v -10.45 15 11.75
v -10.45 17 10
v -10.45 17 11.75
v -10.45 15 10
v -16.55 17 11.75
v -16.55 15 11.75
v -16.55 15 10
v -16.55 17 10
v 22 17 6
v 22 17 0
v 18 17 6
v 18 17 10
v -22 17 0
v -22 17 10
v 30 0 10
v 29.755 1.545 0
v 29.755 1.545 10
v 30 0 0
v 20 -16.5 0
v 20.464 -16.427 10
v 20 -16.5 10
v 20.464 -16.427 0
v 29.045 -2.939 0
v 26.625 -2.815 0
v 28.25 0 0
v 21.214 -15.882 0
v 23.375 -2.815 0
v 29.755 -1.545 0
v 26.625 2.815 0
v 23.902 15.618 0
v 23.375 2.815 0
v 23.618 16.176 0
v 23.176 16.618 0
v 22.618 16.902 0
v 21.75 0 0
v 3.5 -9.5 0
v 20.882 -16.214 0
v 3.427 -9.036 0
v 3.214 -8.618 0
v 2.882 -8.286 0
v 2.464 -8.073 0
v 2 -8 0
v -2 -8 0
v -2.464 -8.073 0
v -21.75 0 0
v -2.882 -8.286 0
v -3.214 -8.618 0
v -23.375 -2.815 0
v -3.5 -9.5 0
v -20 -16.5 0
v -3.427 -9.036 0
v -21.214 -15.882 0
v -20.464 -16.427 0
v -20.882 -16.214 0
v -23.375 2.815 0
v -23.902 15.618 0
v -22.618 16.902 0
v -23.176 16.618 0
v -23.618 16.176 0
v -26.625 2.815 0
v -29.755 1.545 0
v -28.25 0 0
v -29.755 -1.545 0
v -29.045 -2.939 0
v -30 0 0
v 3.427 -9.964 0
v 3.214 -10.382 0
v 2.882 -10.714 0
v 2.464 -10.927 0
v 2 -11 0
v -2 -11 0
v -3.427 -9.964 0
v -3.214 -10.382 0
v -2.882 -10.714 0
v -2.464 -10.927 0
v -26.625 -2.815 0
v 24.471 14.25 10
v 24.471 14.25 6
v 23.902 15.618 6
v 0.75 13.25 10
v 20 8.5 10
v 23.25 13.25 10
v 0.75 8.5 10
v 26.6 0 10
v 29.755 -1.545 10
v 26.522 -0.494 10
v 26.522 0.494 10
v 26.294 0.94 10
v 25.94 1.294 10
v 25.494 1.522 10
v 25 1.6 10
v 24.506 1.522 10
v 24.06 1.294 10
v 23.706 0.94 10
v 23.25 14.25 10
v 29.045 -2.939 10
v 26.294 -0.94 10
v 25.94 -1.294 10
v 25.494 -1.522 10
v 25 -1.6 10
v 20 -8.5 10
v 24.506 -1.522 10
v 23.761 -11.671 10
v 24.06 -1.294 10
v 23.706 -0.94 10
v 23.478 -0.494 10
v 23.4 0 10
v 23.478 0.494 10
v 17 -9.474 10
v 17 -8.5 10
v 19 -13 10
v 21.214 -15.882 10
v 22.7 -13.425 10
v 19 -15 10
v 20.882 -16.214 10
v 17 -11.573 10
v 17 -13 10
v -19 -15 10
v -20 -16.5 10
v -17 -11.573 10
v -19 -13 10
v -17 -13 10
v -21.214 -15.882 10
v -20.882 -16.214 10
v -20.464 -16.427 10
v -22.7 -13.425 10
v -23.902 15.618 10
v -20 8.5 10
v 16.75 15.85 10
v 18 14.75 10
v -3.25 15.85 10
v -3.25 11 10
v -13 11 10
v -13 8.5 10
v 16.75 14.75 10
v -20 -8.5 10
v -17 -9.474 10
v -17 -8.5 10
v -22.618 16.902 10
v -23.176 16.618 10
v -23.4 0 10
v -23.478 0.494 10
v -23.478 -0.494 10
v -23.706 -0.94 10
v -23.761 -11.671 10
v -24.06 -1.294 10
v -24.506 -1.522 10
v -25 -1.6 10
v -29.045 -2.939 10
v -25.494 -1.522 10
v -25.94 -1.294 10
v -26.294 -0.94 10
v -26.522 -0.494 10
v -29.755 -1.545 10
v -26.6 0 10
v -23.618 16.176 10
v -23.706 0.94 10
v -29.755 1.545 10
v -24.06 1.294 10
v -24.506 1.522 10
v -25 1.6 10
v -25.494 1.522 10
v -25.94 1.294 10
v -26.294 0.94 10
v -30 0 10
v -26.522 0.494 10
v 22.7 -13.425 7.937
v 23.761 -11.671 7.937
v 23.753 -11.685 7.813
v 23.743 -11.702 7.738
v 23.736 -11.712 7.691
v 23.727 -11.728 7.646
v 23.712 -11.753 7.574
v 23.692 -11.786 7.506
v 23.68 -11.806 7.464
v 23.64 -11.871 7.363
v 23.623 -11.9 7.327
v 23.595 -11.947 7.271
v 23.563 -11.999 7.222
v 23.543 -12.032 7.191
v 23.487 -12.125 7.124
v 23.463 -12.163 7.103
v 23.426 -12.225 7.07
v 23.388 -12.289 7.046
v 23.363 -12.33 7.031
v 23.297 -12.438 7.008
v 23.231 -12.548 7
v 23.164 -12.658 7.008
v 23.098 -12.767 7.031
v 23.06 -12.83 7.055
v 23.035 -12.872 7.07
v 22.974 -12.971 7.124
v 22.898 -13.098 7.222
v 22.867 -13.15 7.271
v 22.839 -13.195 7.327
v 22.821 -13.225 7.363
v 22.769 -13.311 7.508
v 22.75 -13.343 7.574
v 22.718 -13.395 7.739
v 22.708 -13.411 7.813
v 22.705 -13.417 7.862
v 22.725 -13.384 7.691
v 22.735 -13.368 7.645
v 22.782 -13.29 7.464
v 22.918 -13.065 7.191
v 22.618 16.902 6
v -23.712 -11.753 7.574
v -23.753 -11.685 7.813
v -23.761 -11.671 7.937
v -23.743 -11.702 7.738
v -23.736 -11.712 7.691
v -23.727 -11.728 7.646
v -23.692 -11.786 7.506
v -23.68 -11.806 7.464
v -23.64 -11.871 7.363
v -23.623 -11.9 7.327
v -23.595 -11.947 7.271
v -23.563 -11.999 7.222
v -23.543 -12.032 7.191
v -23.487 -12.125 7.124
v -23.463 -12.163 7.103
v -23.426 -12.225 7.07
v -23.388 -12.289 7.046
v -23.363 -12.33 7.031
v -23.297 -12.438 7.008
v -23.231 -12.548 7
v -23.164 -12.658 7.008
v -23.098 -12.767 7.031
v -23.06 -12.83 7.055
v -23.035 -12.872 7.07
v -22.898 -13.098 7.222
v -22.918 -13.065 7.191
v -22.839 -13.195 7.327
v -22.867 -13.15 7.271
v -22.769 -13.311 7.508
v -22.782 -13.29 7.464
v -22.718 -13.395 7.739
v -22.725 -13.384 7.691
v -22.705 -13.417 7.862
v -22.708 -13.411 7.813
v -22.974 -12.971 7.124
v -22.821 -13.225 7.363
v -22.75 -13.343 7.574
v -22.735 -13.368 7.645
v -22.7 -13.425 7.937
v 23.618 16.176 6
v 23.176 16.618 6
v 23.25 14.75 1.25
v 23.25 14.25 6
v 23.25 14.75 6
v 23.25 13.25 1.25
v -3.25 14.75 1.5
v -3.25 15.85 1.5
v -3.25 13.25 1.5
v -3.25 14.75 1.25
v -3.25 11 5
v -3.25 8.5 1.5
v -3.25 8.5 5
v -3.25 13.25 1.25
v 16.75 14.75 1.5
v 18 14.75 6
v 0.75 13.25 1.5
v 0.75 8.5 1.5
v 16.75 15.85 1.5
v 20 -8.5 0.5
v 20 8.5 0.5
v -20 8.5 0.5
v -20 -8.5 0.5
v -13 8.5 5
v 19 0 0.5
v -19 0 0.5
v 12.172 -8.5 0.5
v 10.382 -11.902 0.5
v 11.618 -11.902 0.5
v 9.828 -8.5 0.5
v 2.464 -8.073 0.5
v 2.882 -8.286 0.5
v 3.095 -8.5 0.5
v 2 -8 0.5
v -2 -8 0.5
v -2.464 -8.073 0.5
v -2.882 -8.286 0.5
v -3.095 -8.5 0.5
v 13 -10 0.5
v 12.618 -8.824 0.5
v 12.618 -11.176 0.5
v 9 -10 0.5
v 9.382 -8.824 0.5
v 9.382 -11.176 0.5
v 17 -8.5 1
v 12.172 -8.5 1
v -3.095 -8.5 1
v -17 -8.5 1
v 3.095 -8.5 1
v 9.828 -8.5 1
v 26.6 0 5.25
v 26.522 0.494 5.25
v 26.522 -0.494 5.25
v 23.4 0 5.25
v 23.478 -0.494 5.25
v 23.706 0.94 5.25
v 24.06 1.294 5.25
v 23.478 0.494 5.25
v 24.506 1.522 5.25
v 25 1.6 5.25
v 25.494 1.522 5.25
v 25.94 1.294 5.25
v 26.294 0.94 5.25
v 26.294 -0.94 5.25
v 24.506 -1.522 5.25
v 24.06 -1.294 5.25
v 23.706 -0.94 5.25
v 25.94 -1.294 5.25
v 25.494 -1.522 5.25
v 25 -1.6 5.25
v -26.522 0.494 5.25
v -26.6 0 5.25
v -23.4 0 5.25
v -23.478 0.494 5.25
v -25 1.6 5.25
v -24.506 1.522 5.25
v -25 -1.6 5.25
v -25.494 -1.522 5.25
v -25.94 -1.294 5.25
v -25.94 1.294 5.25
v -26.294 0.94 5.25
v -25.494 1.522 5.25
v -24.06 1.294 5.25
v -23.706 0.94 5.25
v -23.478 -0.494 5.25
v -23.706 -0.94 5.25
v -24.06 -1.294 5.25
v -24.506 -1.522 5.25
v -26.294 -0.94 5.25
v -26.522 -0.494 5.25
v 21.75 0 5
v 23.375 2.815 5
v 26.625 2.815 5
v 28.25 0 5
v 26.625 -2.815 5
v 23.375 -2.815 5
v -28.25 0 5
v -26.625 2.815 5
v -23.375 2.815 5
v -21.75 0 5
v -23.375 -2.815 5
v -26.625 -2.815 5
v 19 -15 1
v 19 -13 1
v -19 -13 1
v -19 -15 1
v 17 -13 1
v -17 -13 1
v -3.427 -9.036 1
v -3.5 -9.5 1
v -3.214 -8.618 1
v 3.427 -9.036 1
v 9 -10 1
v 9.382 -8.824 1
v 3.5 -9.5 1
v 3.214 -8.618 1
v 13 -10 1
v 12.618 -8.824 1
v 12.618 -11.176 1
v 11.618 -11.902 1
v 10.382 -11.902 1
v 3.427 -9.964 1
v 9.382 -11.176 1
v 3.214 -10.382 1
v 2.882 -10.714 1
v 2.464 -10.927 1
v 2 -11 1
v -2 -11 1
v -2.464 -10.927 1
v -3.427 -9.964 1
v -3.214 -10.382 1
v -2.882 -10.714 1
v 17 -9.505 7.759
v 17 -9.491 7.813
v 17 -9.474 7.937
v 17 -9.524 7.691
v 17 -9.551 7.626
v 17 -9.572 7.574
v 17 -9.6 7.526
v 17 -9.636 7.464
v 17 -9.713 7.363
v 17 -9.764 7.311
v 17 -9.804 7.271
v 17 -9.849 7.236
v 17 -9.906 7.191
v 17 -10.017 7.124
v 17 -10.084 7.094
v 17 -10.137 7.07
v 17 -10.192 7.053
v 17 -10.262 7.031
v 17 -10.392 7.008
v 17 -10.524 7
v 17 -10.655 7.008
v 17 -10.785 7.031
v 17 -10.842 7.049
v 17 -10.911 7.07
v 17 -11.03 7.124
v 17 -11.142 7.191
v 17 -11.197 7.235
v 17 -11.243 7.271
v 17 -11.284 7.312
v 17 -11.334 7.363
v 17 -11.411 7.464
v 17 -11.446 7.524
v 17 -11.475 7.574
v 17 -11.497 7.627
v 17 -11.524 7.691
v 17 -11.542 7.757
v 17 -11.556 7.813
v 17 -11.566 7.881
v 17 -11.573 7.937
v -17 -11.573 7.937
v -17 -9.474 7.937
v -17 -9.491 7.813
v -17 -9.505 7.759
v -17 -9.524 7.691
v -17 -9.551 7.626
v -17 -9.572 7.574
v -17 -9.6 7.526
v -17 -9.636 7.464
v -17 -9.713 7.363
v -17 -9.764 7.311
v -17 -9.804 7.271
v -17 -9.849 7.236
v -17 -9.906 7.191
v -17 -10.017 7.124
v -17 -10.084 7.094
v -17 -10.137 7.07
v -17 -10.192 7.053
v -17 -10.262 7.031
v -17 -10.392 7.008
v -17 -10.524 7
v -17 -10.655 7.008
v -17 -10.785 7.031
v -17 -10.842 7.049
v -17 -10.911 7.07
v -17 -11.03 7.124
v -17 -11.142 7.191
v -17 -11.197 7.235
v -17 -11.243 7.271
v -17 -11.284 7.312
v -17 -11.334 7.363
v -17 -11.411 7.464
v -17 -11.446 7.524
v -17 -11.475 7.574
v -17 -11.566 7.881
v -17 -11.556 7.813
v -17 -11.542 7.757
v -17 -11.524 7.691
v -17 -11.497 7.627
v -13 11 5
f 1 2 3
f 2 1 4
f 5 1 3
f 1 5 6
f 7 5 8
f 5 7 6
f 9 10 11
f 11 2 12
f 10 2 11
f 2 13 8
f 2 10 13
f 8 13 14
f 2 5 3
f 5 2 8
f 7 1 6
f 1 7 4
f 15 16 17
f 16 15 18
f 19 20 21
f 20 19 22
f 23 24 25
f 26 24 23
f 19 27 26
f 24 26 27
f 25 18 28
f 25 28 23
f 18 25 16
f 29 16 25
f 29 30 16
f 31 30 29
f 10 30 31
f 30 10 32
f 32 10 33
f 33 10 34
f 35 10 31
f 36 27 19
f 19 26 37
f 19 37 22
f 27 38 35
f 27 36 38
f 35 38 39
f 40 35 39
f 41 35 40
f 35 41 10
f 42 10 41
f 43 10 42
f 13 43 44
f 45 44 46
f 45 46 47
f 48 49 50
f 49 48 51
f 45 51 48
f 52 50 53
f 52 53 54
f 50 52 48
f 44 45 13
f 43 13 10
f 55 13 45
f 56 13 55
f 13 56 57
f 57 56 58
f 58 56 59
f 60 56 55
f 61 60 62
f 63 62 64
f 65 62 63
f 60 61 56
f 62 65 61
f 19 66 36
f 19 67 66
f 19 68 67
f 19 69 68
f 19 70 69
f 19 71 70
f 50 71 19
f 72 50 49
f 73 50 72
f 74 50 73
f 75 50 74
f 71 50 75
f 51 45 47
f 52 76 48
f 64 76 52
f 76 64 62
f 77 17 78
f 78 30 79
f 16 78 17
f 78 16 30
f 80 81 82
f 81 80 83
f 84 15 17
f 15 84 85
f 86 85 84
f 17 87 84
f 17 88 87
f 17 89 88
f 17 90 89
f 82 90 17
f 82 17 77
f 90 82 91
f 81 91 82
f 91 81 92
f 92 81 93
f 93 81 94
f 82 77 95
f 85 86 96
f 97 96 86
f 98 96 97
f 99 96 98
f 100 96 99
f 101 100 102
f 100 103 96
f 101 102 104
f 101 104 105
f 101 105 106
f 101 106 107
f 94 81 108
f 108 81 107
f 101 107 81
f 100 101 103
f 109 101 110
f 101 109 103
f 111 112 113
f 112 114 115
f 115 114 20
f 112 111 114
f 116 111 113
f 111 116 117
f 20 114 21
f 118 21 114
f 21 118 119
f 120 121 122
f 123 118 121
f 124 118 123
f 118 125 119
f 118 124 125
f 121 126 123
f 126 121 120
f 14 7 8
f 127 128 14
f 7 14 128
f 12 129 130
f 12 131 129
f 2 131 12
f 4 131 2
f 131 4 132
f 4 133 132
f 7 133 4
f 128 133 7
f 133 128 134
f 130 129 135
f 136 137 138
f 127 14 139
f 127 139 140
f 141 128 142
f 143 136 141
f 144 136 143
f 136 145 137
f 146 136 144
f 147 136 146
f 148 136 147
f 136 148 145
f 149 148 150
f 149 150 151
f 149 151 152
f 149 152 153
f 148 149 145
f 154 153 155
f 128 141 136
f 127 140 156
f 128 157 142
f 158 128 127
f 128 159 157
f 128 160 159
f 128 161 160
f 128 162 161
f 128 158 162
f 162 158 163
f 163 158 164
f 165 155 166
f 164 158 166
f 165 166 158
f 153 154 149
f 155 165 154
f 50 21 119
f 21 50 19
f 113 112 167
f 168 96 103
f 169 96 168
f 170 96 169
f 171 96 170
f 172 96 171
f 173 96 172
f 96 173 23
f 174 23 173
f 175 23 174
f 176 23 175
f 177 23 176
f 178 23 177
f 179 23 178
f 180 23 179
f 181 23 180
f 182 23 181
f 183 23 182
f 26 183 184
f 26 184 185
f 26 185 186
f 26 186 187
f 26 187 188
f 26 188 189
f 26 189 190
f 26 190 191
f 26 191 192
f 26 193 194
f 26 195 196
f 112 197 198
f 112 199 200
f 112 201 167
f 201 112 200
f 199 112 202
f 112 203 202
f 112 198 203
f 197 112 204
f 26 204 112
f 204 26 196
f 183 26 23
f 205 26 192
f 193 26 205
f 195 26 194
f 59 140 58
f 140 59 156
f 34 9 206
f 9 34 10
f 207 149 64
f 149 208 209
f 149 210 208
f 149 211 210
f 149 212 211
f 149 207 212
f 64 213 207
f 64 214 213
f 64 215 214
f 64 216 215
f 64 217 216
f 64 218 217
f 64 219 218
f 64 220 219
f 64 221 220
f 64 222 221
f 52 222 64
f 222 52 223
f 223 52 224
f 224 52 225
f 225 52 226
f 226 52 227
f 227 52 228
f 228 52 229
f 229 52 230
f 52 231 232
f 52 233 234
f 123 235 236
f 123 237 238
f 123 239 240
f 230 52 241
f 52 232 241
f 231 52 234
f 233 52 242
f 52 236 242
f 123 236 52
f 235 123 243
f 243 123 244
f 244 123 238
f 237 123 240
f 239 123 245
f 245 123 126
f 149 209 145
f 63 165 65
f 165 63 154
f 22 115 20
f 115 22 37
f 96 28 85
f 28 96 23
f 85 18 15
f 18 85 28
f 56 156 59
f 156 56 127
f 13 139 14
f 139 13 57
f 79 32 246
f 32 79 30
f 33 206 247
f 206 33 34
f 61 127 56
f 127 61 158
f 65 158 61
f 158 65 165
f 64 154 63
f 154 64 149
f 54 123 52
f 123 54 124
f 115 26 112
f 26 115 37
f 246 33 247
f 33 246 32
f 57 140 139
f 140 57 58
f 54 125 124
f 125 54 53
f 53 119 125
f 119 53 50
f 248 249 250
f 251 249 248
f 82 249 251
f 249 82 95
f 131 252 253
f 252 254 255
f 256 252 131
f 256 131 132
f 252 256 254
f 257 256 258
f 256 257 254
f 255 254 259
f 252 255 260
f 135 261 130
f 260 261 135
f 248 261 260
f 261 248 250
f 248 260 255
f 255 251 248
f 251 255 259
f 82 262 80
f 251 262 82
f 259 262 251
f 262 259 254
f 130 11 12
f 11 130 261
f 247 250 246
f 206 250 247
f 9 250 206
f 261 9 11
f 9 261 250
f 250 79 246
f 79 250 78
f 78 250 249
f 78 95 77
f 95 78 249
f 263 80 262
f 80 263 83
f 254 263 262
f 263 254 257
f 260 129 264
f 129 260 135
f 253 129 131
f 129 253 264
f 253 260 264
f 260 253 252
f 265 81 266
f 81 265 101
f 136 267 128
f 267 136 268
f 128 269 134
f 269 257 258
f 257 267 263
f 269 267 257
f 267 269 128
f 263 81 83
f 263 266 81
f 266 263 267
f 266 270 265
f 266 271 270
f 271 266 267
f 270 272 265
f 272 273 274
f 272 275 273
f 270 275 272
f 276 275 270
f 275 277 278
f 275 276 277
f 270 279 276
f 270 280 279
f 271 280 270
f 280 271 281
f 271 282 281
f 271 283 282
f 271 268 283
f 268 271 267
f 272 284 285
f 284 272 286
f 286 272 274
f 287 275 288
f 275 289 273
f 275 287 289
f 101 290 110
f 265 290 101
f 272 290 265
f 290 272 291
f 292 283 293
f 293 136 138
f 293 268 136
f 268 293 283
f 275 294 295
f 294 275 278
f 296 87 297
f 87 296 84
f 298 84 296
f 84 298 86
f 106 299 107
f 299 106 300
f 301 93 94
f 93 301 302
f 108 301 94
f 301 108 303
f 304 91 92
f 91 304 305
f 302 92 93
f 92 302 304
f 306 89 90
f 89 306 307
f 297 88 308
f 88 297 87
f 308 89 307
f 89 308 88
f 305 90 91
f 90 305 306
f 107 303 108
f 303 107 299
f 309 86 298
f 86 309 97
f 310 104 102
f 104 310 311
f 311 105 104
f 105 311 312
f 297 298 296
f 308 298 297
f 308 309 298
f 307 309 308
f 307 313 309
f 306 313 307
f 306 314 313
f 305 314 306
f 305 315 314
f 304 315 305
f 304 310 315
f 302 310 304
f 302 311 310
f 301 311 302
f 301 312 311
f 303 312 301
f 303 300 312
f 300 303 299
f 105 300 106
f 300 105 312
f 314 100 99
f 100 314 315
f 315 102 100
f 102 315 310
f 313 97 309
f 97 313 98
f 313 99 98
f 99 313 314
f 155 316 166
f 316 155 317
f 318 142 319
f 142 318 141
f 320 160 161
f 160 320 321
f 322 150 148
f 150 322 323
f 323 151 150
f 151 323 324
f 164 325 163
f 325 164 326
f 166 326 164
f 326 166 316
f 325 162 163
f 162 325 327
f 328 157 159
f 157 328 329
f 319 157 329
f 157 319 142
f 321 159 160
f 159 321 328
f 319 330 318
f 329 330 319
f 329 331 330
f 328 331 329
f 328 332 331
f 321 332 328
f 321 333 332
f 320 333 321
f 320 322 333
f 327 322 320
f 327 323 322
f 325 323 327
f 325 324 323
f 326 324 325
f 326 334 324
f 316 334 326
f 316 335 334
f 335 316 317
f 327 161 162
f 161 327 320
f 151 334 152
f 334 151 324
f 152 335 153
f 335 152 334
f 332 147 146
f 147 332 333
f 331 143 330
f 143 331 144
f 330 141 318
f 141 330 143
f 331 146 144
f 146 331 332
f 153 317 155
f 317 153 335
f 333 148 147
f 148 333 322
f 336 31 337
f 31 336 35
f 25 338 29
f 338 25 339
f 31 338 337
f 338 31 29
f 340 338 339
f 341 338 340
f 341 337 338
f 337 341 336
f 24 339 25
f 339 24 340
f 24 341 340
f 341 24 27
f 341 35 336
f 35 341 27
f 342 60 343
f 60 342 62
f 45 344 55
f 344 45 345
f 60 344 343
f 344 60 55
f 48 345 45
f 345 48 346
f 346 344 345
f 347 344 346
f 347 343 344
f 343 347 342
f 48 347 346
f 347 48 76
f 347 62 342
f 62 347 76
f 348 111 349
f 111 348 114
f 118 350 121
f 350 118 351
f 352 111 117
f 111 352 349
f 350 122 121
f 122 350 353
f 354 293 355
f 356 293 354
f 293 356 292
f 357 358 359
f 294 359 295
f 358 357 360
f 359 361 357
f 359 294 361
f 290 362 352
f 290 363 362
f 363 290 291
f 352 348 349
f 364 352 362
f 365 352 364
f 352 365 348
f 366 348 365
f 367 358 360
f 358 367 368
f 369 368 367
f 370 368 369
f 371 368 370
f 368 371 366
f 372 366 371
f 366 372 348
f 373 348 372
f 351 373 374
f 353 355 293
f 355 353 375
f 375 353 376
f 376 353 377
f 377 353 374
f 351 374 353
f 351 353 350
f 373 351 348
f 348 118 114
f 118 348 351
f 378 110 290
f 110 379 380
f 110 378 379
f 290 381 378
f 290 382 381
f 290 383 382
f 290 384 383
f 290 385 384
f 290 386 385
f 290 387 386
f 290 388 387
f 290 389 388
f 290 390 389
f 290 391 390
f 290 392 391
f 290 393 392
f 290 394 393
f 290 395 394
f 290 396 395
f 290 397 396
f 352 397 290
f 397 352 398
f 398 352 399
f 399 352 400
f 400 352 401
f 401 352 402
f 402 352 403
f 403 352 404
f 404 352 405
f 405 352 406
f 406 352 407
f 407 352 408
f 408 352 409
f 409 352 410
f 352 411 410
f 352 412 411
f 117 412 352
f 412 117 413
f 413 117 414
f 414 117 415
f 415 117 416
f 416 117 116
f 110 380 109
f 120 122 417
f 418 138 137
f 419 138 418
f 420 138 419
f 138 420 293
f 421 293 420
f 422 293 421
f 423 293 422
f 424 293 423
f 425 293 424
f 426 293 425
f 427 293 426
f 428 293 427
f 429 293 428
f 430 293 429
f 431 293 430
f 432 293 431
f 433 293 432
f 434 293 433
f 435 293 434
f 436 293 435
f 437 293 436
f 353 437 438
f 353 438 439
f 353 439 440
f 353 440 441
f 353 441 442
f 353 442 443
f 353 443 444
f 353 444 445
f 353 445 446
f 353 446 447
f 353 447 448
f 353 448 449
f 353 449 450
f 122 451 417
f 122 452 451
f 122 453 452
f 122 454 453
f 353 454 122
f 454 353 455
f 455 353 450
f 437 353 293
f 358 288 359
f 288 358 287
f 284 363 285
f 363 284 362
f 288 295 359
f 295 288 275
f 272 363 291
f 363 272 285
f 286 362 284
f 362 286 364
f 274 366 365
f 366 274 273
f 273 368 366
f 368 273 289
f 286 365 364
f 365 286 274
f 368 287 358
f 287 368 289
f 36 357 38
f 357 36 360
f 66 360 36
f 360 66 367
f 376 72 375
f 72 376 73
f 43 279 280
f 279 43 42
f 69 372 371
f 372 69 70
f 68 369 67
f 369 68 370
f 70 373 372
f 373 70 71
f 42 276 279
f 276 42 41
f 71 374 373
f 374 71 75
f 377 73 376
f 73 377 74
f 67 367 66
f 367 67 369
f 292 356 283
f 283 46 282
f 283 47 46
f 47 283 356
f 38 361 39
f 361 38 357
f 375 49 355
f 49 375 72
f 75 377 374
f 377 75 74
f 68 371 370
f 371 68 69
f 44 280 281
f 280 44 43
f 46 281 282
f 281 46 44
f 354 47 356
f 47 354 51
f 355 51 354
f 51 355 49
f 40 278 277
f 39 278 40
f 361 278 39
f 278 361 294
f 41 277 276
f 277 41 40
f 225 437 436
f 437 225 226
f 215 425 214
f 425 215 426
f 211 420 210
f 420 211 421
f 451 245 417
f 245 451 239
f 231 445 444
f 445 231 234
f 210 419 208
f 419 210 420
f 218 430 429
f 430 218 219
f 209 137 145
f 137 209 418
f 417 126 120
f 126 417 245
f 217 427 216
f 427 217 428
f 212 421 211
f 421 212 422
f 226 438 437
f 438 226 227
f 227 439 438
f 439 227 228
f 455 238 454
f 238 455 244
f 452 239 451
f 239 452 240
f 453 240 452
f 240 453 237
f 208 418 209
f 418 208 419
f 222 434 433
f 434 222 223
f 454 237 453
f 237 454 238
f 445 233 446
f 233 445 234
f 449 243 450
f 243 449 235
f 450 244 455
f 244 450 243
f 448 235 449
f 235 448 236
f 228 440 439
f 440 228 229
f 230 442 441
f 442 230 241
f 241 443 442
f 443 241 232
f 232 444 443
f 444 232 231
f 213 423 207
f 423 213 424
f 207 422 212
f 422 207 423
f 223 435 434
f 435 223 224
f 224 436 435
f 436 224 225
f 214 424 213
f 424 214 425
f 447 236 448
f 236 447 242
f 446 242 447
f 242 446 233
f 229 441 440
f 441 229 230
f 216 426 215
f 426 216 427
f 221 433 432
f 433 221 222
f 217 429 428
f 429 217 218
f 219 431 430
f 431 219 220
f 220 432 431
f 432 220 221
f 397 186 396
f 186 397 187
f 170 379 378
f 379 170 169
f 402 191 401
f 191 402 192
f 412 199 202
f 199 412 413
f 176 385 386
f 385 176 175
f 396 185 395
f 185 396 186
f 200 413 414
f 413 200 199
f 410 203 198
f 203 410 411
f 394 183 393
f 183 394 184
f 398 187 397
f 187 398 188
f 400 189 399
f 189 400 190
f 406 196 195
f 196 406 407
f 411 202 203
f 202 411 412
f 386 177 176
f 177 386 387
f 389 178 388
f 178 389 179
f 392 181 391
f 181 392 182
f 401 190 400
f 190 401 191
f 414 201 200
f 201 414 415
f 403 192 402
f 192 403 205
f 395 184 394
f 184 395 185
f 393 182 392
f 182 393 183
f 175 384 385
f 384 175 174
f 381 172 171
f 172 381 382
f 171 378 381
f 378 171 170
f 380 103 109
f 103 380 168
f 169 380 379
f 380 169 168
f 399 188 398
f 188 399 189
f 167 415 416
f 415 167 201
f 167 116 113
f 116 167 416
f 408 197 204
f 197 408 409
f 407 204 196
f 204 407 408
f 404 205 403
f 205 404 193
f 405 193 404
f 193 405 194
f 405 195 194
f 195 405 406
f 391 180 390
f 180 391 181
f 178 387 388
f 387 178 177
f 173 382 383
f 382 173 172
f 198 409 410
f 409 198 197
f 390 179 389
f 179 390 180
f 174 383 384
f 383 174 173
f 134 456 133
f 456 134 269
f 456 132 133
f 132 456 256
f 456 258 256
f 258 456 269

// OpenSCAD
mirror([1,0,0])difference()
{
    union()
    {
        translate([13.5,16,10])cube([6.1, 2, 3.5],center = true);
        hull()
        {
            translate([-25, 0, 0])cylinder(d = 10, h = 10,$fn = 20);
            translate([25, 0, 0])cylinder(d = 10, h = 10,$fn = 20);
            translate([-22, 15, 0])cylinder(d = 4, h = 10,$fn = 20);
            translate([22, 15, 0])cylinder(d = 4, h = 10,$fn = 20);
            translate([-20, -15, 0])cylinder(d = 3, h = 10,$fn = 20);
            translate([20, -15, 0])cylinder(d = 3, h = 10,$fn = 20);
        }
    }

union()
    {
        translate([0 ,0 ,9])cube([40,17,17],center = true);
        translate([0 ,0 ,9])rotate([0,90,0])cylinder(d = 17, h = 38, center = true);//batería redonda
        translate([-25, 0, 5.25])cylinder(d = 3.2, h = 50,$fn = 20);  //hueco tornillo
        translate([25, 0, 5.25])cylinder(d = 3.2, h = 50,$fn = 20);   //hueco tornillo
        translate([-25, 0, -1])cylinder(d = 6.5, h = 6,$fn = 6);  //hueco tuerca
        translate([25, 0, -1])cylinder(d = 6.5, h = 6,$fn = 6);   //hueco tuerca
        translate([0, -14, 10])cube([38,2,18], center = true);//placa booster
        translate([0, -11, 10])cube([34,6,18], center = true);//hueco booster
        translate([0, -10, 13])cube([34,8,18], center = true);//hueco booster
        translate([-11,-10,0.5])cylinder(d = 4,h =5, $fn =10);// hueco tornillo regulador booster
        hull()
        {
            translate([-2,-9.5,-1])cylinder(d = 3,h =5, $fn =20);
            translate([2,-9.5,-1])cylinder(d = 3,h =5, $fn =20);
        }
        
         hull()// registro lateral para cables
        {
            translate([0,-5,8])rotate([18,90,0])cylinder(d=2,h = 40, $fn = 50);
            translate([0,-5,11])rotate([18,90,0])cylinder(d=2,h = 40, $fn = 50);
        }
        mirror([1, 0, 0])hull()// registro lateral para cables
        {
            translate([0,-5,8])rotate([18,90,0])cylinder(d=2,h = 40, $fn = 50);
            translate([0,-5,11])rotate([18,90,0])cylinder(d=2,h = 40, $fn = 50);
        }
        translate([8,6,10])cube([10,10,10],center = true);
        translate([-10, 14, 10])cargador();
        //translate([13.5,14,7])interruptor();
    }
}

//cargador(); 

module cargador()
{
    cube([26.5, 1.5,17.5], center = true); // placa cargador
    translate([-13, 2, 0]) cube([10,3.5,8],center = true); //usb cargador
    translate([11.25, -5, 0])cube([4,10,17],center = true);//salida cables
    translate([3.25, 1, 0])cube([20,1.7,17],center = true);//hueco componentes

    
}


//interruptor();
module interruptor()
{
    translate([0,0,1.5])cube([15, 0.7, 7.7], center = true);//plancha
    translate([0,-5,1])cube([10.75, 10.7, 8], center = true);//cuerpo
    translate([0,5,2])cube([6.5, 10,7],center = true);// accionador
}
